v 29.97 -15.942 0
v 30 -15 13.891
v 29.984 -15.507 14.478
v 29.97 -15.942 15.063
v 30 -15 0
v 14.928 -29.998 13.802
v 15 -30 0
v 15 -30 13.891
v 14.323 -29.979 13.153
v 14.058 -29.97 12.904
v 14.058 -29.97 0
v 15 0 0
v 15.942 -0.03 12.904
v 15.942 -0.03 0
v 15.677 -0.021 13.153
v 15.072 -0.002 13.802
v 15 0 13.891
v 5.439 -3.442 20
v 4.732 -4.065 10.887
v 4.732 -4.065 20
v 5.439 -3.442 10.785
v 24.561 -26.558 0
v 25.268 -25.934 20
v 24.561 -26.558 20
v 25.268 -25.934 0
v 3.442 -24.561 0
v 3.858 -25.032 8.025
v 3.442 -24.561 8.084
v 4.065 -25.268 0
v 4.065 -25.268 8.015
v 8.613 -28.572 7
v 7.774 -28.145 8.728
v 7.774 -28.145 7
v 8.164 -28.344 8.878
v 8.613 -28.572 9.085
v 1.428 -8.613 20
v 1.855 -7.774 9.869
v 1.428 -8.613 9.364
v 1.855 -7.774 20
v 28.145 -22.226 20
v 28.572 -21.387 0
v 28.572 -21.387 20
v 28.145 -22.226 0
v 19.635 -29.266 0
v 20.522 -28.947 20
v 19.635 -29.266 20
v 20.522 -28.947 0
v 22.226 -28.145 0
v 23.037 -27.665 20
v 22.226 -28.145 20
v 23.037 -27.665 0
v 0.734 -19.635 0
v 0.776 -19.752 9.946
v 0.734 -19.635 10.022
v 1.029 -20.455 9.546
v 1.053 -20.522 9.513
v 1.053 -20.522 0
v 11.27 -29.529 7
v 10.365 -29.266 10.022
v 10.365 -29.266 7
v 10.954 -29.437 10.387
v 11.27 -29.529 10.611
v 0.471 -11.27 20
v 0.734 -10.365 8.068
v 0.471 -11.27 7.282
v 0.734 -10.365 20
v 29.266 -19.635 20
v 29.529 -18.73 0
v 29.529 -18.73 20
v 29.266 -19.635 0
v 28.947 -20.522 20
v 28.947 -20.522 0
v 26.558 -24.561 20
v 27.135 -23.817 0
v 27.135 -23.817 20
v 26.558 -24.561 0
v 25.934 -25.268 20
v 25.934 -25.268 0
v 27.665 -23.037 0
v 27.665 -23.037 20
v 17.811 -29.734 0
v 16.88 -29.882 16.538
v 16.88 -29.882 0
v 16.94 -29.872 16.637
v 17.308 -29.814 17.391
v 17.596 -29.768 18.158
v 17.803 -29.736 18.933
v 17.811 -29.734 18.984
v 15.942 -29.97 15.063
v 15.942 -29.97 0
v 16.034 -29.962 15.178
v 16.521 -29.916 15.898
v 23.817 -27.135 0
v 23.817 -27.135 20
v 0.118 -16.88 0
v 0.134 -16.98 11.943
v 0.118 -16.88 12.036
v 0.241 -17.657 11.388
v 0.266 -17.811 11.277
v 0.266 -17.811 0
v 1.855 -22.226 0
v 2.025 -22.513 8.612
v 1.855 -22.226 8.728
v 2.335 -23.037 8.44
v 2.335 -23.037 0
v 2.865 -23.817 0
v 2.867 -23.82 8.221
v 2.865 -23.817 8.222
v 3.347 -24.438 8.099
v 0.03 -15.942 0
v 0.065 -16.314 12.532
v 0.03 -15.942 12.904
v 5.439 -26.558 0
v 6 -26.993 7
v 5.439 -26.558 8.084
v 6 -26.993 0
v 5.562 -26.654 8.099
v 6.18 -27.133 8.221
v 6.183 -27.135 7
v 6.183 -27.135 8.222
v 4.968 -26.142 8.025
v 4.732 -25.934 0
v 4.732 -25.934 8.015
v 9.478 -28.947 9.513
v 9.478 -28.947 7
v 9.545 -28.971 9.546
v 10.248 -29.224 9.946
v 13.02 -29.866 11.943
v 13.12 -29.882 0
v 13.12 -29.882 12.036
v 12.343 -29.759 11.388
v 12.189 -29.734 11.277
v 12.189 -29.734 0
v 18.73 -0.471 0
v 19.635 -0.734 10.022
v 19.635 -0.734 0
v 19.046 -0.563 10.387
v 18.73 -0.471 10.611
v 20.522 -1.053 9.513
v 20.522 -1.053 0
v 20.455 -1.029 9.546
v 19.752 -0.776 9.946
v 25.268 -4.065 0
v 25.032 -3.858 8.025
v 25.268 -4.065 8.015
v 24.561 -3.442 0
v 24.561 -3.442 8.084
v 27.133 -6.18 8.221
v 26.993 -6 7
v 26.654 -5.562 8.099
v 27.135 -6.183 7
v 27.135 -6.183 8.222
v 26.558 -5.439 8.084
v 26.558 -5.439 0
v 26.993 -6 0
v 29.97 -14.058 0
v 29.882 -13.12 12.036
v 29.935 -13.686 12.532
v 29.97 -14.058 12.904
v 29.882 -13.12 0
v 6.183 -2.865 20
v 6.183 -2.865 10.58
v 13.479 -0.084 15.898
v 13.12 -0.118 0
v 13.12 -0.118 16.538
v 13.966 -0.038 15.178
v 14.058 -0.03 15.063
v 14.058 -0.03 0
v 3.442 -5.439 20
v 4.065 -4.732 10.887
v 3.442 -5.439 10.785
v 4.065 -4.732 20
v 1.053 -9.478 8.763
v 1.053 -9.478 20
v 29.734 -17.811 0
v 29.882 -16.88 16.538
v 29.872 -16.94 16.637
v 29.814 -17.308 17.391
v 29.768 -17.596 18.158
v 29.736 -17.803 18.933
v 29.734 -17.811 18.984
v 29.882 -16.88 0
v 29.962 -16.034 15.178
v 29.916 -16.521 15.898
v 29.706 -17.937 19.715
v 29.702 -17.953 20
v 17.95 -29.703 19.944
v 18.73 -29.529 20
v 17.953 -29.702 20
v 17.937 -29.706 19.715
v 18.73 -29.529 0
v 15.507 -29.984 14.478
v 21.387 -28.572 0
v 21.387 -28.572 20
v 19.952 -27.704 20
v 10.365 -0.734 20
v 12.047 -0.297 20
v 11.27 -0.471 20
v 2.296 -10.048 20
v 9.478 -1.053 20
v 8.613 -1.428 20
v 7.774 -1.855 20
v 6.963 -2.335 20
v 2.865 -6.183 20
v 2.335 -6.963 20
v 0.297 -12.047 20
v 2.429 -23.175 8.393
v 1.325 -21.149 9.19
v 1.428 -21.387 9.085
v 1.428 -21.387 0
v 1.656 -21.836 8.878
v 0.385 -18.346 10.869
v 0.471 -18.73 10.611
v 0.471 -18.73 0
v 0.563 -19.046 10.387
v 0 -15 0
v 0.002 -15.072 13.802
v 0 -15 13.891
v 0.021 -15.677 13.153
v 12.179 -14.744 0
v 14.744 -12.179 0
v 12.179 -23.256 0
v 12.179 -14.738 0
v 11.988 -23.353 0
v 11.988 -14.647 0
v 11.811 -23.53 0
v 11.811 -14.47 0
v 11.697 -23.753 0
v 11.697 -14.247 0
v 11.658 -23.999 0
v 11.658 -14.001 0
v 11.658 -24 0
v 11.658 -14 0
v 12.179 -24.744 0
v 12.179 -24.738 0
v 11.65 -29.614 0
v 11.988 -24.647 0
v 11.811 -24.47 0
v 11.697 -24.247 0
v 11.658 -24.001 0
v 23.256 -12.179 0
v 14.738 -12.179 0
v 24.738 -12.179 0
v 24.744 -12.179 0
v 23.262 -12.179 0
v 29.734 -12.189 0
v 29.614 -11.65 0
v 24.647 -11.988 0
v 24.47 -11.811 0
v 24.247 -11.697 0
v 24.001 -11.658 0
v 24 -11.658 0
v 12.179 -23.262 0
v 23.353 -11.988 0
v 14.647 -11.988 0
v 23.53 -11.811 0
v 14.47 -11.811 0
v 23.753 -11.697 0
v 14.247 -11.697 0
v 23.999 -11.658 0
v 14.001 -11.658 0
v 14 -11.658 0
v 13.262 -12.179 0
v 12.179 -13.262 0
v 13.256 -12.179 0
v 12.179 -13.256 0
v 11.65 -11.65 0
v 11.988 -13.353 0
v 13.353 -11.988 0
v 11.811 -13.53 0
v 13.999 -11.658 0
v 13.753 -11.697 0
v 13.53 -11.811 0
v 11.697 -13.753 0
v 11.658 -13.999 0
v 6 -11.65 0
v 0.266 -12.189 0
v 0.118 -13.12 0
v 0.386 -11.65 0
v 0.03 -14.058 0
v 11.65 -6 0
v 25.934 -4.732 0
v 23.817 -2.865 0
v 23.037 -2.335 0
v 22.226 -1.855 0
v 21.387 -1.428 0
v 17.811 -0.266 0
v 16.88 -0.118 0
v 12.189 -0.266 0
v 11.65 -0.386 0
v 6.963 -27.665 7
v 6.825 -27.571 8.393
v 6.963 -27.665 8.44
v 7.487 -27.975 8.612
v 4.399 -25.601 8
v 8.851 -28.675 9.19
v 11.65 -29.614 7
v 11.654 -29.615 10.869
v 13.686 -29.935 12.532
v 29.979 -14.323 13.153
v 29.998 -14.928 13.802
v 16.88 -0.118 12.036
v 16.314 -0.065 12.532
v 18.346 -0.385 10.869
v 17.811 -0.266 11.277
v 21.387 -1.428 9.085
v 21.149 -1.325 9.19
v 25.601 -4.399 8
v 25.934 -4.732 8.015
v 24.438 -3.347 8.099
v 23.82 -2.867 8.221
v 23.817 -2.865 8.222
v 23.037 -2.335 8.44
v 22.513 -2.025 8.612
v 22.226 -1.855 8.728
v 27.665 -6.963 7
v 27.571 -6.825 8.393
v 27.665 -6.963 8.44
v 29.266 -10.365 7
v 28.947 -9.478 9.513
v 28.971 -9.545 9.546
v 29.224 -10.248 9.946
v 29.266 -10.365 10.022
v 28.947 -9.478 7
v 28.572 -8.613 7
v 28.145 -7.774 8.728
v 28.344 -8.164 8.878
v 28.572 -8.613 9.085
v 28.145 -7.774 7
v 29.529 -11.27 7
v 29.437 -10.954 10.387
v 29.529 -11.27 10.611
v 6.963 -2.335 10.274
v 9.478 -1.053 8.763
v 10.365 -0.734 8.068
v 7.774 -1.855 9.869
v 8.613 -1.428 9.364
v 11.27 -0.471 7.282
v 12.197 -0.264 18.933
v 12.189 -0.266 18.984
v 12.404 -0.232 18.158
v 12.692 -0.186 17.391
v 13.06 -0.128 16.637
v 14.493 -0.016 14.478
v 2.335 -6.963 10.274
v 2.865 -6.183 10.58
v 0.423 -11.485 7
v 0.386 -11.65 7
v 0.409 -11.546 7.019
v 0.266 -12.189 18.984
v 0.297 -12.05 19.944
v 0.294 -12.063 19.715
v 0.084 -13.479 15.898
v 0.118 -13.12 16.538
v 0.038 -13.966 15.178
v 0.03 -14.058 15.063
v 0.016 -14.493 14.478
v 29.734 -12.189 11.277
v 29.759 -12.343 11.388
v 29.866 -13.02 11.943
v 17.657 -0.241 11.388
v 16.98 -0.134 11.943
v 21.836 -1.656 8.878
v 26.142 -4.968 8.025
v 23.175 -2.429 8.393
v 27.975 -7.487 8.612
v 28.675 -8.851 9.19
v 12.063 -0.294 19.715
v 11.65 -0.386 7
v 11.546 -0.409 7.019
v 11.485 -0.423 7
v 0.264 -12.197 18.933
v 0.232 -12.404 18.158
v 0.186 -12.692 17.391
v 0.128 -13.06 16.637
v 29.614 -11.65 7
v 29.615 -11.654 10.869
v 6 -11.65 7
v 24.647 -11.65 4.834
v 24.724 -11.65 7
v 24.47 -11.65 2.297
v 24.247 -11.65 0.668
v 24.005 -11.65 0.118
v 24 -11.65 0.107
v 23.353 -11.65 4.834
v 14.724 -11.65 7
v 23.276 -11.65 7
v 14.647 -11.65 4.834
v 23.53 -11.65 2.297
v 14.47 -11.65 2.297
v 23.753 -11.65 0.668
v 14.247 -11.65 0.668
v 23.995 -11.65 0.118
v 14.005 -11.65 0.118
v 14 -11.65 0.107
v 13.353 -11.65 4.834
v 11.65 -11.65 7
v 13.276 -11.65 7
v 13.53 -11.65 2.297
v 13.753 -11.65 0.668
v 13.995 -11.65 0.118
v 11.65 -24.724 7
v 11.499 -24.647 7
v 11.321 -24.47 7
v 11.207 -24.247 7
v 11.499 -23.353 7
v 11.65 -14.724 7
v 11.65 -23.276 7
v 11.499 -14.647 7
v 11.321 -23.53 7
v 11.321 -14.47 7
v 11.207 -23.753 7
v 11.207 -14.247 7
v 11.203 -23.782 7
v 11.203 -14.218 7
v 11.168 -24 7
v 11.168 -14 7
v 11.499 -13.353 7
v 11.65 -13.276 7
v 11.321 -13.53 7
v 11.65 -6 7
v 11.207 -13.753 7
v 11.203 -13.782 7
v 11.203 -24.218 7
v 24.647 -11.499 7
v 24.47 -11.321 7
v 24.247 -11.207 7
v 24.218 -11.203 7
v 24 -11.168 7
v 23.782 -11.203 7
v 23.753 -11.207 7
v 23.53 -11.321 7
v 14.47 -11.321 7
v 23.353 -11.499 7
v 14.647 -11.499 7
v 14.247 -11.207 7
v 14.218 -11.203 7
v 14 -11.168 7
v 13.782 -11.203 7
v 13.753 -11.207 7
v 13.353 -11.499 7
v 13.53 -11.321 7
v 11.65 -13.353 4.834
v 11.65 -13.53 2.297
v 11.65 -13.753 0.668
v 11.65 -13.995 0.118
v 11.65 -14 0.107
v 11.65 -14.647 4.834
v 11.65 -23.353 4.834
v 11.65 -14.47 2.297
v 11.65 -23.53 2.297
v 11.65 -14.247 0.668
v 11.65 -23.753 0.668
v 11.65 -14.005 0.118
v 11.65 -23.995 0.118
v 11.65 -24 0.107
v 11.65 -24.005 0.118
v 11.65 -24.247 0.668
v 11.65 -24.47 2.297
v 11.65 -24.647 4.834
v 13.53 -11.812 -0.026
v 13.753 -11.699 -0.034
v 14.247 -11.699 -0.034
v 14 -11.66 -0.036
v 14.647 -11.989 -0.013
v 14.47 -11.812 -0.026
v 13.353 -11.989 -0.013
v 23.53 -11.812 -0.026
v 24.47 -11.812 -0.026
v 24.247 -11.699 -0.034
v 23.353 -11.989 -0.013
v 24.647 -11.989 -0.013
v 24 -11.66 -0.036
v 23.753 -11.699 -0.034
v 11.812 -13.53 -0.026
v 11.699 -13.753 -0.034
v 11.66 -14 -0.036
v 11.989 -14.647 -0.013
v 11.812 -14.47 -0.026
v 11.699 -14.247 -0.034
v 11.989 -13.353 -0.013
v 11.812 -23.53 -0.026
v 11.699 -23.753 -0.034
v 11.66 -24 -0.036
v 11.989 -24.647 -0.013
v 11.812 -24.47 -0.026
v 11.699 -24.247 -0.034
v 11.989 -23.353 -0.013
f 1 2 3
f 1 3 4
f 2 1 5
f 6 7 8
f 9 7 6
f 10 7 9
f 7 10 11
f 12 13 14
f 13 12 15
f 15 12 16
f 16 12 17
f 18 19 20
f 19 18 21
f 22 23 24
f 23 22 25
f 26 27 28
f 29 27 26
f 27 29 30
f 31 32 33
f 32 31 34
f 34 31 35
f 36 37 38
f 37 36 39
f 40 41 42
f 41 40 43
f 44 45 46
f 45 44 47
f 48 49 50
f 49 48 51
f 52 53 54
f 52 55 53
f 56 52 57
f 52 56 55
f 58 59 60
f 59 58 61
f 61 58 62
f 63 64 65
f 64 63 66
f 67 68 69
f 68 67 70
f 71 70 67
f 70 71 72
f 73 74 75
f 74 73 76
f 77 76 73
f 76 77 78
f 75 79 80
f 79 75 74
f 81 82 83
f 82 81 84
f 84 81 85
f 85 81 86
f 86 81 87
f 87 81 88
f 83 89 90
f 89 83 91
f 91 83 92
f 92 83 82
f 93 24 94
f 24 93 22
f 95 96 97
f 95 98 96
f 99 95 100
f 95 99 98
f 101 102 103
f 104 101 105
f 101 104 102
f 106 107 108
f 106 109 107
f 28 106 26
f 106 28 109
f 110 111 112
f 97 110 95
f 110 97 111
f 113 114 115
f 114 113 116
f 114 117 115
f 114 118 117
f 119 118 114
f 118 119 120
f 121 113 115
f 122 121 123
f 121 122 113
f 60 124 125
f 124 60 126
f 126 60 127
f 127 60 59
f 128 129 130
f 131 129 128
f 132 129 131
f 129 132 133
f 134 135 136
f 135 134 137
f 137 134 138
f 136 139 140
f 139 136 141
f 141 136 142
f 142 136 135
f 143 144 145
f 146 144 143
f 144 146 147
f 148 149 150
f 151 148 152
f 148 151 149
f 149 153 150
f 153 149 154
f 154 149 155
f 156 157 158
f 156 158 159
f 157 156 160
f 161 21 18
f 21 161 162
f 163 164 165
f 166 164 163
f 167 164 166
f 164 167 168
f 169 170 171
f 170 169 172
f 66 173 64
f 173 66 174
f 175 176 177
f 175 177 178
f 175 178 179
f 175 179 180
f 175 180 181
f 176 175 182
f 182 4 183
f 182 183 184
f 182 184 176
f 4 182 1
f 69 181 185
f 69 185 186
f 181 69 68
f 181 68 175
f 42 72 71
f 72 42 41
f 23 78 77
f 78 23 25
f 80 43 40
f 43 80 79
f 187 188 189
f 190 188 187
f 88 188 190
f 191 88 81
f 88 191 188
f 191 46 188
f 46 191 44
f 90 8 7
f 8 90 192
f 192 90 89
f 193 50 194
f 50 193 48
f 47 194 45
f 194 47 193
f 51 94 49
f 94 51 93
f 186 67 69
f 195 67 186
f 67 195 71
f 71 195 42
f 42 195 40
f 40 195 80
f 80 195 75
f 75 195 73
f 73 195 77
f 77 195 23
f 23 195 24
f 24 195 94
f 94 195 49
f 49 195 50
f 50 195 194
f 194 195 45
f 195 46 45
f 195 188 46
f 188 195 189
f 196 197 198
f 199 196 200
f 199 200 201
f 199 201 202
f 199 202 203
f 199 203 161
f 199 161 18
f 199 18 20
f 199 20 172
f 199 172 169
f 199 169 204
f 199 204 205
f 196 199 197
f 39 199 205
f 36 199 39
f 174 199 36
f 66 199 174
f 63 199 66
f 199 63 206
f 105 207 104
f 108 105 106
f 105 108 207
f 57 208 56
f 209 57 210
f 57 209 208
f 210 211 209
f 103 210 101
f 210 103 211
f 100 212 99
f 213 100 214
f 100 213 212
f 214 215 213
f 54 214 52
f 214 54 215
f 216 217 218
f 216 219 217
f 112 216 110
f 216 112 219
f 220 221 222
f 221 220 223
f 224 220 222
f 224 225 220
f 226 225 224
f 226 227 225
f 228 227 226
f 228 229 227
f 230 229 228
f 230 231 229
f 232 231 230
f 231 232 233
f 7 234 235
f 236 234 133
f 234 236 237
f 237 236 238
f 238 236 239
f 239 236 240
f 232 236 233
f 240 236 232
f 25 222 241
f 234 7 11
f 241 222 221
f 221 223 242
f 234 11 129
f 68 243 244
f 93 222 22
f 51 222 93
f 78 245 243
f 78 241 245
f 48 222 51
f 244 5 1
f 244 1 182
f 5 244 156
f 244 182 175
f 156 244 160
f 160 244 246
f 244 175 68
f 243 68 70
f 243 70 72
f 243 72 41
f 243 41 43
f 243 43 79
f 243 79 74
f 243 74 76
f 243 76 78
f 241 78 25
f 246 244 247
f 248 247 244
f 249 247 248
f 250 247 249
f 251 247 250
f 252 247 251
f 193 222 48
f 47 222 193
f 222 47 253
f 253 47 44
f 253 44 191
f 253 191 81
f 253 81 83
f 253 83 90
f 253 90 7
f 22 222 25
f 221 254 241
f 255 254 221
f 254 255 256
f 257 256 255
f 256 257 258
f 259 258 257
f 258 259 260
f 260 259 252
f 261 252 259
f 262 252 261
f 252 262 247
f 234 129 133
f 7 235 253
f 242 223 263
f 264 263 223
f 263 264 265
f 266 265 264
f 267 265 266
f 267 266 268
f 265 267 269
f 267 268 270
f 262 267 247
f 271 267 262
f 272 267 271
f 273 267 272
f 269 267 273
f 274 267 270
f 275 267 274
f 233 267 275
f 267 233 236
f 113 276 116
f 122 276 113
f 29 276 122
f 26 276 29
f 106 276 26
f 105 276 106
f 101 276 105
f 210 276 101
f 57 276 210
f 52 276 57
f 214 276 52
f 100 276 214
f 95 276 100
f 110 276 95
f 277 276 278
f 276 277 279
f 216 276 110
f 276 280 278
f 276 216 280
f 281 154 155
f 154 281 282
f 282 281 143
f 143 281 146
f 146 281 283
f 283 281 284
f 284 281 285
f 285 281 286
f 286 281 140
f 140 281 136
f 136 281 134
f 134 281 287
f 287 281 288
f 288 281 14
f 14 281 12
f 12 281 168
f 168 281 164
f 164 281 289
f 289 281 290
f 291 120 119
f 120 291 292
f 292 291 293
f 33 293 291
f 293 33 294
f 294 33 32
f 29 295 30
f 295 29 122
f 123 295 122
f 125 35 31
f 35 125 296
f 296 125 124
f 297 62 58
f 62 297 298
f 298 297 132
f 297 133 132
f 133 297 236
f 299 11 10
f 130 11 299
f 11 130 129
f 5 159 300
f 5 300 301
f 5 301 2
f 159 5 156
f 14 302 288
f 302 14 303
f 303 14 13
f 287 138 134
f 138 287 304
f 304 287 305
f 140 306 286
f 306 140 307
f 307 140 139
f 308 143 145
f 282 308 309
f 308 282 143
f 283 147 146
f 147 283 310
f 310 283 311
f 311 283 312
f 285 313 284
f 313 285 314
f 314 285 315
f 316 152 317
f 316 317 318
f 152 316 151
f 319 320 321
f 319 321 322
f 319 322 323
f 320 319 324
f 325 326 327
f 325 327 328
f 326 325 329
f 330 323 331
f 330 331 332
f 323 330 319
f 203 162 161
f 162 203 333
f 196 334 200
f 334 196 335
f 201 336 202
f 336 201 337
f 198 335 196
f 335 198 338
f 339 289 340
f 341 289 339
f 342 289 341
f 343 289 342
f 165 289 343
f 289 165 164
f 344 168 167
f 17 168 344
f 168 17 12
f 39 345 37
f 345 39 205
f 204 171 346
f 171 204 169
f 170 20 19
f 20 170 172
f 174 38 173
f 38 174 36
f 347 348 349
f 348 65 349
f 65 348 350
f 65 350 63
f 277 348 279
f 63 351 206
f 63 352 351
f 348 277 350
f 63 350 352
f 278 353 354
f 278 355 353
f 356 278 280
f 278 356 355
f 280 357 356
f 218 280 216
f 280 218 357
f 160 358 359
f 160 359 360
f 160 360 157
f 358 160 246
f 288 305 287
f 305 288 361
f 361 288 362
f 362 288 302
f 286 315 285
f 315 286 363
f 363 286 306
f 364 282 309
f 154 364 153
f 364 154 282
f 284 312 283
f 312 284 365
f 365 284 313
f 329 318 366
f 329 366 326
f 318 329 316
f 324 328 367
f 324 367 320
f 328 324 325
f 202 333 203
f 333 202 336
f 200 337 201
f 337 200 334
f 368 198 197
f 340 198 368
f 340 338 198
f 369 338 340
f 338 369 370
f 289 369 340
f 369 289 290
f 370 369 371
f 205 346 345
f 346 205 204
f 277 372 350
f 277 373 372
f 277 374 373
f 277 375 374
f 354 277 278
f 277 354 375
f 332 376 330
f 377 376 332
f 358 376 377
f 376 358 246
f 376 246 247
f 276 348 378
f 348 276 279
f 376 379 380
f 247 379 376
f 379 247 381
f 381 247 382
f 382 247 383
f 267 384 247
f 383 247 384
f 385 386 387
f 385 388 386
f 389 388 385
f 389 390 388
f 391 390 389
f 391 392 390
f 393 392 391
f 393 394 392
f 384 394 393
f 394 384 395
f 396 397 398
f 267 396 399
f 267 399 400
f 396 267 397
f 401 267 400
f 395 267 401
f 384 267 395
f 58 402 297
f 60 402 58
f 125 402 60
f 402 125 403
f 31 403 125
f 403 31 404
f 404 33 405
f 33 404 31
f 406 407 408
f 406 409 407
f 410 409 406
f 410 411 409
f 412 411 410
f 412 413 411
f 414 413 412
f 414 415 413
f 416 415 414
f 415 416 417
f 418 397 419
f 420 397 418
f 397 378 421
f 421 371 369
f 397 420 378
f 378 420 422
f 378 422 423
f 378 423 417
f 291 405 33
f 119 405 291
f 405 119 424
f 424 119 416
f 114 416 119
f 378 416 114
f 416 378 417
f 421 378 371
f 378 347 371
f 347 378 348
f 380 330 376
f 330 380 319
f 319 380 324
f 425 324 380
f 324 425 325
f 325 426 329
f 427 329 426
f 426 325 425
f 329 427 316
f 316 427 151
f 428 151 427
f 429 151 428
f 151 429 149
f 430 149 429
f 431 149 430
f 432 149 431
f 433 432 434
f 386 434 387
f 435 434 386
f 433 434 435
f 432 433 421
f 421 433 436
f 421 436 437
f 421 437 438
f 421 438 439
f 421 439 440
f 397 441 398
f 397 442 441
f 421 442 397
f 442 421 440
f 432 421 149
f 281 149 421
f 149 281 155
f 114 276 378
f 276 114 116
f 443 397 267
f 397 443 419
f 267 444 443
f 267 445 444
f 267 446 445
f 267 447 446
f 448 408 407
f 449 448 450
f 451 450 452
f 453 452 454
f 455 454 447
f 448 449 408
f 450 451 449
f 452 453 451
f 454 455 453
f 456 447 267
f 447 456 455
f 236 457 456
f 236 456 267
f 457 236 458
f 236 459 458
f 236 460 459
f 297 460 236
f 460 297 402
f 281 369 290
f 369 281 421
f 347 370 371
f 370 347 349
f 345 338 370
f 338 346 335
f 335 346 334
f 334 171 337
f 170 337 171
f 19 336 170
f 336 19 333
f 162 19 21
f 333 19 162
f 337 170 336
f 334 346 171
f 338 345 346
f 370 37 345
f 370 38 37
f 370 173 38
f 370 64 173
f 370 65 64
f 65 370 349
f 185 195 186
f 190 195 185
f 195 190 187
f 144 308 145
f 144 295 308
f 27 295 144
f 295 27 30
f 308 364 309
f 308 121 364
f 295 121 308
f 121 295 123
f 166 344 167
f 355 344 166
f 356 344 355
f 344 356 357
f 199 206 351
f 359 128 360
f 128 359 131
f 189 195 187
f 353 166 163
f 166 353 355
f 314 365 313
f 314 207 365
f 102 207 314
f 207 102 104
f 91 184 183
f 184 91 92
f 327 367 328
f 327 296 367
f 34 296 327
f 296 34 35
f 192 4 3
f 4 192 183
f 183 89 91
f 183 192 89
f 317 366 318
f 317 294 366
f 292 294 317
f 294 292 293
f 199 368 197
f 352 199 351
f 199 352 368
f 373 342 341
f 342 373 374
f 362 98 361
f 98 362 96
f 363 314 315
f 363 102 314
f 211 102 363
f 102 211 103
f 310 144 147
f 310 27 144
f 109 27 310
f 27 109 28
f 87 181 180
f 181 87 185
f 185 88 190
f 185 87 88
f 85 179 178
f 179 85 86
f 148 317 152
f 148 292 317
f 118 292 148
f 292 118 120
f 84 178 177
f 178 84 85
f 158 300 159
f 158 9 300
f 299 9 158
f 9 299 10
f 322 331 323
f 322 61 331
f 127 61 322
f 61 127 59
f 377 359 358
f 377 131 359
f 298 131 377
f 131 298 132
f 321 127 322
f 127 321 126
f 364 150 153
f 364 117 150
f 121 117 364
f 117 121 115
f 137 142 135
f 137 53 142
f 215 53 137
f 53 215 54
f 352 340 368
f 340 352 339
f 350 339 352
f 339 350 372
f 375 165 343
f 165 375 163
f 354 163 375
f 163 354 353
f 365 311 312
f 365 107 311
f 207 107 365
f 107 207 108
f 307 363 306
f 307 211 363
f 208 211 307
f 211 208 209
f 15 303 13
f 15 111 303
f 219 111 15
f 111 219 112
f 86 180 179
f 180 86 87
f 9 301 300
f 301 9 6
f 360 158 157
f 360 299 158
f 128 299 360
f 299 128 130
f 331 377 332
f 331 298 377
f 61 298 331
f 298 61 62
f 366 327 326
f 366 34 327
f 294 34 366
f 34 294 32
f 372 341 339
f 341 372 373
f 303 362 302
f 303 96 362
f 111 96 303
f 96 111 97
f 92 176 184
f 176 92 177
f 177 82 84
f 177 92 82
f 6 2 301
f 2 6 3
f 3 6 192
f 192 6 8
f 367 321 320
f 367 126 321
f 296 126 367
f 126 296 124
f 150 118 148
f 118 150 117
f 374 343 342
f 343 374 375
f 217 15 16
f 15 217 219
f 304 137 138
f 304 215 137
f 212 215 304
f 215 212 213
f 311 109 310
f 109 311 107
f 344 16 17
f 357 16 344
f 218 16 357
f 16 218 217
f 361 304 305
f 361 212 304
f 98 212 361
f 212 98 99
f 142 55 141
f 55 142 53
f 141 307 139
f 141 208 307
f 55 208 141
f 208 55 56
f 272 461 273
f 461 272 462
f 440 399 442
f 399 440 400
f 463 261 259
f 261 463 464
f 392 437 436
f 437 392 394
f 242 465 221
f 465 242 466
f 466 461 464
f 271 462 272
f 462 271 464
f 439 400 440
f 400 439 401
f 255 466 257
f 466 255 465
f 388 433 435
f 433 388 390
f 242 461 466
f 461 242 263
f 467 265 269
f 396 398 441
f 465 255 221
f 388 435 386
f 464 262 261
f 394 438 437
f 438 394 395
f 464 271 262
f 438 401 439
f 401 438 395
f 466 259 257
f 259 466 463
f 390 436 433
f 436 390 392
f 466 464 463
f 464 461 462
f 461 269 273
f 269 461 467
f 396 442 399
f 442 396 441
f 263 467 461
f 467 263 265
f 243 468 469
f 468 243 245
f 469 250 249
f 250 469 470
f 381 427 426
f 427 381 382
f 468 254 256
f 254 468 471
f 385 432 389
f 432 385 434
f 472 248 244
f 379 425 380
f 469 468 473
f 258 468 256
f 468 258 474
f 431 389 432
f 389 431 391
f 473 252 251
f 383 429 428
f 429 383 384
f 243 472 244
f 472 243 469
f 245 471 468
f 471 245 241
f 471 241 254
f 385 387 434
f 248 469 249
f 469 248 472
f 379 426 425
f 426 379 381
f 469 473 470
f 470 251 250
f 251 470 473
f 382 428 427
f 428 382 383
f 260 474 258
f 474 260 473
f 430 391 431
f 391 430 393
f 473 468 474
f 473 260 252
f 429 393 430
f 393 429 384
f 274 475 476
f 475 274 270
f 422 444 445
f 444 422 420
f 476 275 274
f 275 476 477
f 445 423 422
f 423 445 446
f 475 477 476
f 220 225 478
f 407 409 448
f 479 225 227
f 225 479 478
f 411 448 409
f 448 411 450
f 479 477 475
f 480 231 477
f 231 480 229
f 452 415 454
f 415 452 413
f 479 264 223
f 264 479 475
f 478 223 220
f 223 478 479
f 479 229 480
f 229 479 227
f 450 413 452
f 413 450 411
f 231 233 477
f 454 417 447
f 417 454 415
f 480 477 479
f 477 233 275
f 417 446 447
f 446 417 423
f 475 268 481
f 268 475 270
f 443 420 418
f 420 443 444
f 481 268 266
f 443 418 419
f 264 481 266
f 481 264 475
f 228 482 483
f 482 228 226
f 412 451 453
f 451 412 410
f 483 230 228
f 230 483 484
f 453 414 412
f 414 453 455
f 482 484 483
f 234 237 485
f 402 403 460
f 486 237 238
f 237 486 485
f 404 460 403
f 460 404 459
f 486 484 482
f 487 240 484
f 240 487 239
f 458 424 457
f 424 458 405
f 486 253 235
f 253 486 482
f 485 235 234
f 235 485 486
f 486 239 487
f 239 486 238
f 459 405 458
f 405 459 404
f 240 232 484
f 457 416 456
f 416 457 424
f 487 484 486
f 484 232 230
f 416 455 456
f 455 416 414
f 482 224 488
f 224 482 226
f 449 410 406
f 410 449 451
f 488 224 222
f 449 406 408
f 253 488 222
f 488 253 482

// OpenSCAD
// -*- mode: SCAD ; c-file-style: "ellemtel" ; coding: utf-8 -*-
//
// Inner tube foot
//
// A foot to mount a Replicator/Duplicator/Bizer/&cator on a
// half-inflated bicycle inner tube.  You'll need four.
//
// (c) 2017 Roland Sieker <ospalh@gmail.com>
// Based on Replicator Isolator Feet by Gary Crowell Sr. https://www.thingiverse.com/thing:42124
// (c) 2013 Gary Crowell Sr. <ospalh@gmail.com>
// Licence: CC-BY-SA 4.0


translate([0,0,8])
rotate([180,0,0])
{
   {
      foot();
   }
}

module foot ()
{
//  Replicator foot for gripper pad
   difference ()
   {
      translate ([ 15, 15, -12]) cylinder (h=20, r=15, $fn=100);

      translate ([-10,6,1])
         cube (size = [60,5.65,15], center = false);
      rotate ([0,0,270])
         translate ([-50,6,1])
         cube (size = [60,5.65,15], center = false);

      translate ([0,0,1])
      {
         cube (size = [10, 10,15], center = false);
      }
      translate ([-10,-36,-10])
      {
         rotate([0,30,45])
         {
            cube (size = [30, 30,30], center = false);
         }
      }
      rotate([90,0,45])
      {
         translate([15*sqrt(2), -12.5, -20])
         {
            cylinder(r=12.5, h=40,$fn=100);
         }
      }
   } // difference


// Strakes to make it grib the frame better
   translate ([14,11.9,0])
      rotate ([-4,0,0])
      cylinder (h=8, r=.8, $fn=20);

   translate ([24, 11.9,0])
      rotate ([-4,0,0])
      cylinder (h=8, r=.8, $fn=20);

   translate ([11.9,14,0])
      rotate ([0,4,0])
      cylinder (h=8, r=.8, $fn=20);

   translate ([11.9,24,0])
      rotate ([0,4,0])
      cylinder (h=8, r=.8, $fn=20);
}
